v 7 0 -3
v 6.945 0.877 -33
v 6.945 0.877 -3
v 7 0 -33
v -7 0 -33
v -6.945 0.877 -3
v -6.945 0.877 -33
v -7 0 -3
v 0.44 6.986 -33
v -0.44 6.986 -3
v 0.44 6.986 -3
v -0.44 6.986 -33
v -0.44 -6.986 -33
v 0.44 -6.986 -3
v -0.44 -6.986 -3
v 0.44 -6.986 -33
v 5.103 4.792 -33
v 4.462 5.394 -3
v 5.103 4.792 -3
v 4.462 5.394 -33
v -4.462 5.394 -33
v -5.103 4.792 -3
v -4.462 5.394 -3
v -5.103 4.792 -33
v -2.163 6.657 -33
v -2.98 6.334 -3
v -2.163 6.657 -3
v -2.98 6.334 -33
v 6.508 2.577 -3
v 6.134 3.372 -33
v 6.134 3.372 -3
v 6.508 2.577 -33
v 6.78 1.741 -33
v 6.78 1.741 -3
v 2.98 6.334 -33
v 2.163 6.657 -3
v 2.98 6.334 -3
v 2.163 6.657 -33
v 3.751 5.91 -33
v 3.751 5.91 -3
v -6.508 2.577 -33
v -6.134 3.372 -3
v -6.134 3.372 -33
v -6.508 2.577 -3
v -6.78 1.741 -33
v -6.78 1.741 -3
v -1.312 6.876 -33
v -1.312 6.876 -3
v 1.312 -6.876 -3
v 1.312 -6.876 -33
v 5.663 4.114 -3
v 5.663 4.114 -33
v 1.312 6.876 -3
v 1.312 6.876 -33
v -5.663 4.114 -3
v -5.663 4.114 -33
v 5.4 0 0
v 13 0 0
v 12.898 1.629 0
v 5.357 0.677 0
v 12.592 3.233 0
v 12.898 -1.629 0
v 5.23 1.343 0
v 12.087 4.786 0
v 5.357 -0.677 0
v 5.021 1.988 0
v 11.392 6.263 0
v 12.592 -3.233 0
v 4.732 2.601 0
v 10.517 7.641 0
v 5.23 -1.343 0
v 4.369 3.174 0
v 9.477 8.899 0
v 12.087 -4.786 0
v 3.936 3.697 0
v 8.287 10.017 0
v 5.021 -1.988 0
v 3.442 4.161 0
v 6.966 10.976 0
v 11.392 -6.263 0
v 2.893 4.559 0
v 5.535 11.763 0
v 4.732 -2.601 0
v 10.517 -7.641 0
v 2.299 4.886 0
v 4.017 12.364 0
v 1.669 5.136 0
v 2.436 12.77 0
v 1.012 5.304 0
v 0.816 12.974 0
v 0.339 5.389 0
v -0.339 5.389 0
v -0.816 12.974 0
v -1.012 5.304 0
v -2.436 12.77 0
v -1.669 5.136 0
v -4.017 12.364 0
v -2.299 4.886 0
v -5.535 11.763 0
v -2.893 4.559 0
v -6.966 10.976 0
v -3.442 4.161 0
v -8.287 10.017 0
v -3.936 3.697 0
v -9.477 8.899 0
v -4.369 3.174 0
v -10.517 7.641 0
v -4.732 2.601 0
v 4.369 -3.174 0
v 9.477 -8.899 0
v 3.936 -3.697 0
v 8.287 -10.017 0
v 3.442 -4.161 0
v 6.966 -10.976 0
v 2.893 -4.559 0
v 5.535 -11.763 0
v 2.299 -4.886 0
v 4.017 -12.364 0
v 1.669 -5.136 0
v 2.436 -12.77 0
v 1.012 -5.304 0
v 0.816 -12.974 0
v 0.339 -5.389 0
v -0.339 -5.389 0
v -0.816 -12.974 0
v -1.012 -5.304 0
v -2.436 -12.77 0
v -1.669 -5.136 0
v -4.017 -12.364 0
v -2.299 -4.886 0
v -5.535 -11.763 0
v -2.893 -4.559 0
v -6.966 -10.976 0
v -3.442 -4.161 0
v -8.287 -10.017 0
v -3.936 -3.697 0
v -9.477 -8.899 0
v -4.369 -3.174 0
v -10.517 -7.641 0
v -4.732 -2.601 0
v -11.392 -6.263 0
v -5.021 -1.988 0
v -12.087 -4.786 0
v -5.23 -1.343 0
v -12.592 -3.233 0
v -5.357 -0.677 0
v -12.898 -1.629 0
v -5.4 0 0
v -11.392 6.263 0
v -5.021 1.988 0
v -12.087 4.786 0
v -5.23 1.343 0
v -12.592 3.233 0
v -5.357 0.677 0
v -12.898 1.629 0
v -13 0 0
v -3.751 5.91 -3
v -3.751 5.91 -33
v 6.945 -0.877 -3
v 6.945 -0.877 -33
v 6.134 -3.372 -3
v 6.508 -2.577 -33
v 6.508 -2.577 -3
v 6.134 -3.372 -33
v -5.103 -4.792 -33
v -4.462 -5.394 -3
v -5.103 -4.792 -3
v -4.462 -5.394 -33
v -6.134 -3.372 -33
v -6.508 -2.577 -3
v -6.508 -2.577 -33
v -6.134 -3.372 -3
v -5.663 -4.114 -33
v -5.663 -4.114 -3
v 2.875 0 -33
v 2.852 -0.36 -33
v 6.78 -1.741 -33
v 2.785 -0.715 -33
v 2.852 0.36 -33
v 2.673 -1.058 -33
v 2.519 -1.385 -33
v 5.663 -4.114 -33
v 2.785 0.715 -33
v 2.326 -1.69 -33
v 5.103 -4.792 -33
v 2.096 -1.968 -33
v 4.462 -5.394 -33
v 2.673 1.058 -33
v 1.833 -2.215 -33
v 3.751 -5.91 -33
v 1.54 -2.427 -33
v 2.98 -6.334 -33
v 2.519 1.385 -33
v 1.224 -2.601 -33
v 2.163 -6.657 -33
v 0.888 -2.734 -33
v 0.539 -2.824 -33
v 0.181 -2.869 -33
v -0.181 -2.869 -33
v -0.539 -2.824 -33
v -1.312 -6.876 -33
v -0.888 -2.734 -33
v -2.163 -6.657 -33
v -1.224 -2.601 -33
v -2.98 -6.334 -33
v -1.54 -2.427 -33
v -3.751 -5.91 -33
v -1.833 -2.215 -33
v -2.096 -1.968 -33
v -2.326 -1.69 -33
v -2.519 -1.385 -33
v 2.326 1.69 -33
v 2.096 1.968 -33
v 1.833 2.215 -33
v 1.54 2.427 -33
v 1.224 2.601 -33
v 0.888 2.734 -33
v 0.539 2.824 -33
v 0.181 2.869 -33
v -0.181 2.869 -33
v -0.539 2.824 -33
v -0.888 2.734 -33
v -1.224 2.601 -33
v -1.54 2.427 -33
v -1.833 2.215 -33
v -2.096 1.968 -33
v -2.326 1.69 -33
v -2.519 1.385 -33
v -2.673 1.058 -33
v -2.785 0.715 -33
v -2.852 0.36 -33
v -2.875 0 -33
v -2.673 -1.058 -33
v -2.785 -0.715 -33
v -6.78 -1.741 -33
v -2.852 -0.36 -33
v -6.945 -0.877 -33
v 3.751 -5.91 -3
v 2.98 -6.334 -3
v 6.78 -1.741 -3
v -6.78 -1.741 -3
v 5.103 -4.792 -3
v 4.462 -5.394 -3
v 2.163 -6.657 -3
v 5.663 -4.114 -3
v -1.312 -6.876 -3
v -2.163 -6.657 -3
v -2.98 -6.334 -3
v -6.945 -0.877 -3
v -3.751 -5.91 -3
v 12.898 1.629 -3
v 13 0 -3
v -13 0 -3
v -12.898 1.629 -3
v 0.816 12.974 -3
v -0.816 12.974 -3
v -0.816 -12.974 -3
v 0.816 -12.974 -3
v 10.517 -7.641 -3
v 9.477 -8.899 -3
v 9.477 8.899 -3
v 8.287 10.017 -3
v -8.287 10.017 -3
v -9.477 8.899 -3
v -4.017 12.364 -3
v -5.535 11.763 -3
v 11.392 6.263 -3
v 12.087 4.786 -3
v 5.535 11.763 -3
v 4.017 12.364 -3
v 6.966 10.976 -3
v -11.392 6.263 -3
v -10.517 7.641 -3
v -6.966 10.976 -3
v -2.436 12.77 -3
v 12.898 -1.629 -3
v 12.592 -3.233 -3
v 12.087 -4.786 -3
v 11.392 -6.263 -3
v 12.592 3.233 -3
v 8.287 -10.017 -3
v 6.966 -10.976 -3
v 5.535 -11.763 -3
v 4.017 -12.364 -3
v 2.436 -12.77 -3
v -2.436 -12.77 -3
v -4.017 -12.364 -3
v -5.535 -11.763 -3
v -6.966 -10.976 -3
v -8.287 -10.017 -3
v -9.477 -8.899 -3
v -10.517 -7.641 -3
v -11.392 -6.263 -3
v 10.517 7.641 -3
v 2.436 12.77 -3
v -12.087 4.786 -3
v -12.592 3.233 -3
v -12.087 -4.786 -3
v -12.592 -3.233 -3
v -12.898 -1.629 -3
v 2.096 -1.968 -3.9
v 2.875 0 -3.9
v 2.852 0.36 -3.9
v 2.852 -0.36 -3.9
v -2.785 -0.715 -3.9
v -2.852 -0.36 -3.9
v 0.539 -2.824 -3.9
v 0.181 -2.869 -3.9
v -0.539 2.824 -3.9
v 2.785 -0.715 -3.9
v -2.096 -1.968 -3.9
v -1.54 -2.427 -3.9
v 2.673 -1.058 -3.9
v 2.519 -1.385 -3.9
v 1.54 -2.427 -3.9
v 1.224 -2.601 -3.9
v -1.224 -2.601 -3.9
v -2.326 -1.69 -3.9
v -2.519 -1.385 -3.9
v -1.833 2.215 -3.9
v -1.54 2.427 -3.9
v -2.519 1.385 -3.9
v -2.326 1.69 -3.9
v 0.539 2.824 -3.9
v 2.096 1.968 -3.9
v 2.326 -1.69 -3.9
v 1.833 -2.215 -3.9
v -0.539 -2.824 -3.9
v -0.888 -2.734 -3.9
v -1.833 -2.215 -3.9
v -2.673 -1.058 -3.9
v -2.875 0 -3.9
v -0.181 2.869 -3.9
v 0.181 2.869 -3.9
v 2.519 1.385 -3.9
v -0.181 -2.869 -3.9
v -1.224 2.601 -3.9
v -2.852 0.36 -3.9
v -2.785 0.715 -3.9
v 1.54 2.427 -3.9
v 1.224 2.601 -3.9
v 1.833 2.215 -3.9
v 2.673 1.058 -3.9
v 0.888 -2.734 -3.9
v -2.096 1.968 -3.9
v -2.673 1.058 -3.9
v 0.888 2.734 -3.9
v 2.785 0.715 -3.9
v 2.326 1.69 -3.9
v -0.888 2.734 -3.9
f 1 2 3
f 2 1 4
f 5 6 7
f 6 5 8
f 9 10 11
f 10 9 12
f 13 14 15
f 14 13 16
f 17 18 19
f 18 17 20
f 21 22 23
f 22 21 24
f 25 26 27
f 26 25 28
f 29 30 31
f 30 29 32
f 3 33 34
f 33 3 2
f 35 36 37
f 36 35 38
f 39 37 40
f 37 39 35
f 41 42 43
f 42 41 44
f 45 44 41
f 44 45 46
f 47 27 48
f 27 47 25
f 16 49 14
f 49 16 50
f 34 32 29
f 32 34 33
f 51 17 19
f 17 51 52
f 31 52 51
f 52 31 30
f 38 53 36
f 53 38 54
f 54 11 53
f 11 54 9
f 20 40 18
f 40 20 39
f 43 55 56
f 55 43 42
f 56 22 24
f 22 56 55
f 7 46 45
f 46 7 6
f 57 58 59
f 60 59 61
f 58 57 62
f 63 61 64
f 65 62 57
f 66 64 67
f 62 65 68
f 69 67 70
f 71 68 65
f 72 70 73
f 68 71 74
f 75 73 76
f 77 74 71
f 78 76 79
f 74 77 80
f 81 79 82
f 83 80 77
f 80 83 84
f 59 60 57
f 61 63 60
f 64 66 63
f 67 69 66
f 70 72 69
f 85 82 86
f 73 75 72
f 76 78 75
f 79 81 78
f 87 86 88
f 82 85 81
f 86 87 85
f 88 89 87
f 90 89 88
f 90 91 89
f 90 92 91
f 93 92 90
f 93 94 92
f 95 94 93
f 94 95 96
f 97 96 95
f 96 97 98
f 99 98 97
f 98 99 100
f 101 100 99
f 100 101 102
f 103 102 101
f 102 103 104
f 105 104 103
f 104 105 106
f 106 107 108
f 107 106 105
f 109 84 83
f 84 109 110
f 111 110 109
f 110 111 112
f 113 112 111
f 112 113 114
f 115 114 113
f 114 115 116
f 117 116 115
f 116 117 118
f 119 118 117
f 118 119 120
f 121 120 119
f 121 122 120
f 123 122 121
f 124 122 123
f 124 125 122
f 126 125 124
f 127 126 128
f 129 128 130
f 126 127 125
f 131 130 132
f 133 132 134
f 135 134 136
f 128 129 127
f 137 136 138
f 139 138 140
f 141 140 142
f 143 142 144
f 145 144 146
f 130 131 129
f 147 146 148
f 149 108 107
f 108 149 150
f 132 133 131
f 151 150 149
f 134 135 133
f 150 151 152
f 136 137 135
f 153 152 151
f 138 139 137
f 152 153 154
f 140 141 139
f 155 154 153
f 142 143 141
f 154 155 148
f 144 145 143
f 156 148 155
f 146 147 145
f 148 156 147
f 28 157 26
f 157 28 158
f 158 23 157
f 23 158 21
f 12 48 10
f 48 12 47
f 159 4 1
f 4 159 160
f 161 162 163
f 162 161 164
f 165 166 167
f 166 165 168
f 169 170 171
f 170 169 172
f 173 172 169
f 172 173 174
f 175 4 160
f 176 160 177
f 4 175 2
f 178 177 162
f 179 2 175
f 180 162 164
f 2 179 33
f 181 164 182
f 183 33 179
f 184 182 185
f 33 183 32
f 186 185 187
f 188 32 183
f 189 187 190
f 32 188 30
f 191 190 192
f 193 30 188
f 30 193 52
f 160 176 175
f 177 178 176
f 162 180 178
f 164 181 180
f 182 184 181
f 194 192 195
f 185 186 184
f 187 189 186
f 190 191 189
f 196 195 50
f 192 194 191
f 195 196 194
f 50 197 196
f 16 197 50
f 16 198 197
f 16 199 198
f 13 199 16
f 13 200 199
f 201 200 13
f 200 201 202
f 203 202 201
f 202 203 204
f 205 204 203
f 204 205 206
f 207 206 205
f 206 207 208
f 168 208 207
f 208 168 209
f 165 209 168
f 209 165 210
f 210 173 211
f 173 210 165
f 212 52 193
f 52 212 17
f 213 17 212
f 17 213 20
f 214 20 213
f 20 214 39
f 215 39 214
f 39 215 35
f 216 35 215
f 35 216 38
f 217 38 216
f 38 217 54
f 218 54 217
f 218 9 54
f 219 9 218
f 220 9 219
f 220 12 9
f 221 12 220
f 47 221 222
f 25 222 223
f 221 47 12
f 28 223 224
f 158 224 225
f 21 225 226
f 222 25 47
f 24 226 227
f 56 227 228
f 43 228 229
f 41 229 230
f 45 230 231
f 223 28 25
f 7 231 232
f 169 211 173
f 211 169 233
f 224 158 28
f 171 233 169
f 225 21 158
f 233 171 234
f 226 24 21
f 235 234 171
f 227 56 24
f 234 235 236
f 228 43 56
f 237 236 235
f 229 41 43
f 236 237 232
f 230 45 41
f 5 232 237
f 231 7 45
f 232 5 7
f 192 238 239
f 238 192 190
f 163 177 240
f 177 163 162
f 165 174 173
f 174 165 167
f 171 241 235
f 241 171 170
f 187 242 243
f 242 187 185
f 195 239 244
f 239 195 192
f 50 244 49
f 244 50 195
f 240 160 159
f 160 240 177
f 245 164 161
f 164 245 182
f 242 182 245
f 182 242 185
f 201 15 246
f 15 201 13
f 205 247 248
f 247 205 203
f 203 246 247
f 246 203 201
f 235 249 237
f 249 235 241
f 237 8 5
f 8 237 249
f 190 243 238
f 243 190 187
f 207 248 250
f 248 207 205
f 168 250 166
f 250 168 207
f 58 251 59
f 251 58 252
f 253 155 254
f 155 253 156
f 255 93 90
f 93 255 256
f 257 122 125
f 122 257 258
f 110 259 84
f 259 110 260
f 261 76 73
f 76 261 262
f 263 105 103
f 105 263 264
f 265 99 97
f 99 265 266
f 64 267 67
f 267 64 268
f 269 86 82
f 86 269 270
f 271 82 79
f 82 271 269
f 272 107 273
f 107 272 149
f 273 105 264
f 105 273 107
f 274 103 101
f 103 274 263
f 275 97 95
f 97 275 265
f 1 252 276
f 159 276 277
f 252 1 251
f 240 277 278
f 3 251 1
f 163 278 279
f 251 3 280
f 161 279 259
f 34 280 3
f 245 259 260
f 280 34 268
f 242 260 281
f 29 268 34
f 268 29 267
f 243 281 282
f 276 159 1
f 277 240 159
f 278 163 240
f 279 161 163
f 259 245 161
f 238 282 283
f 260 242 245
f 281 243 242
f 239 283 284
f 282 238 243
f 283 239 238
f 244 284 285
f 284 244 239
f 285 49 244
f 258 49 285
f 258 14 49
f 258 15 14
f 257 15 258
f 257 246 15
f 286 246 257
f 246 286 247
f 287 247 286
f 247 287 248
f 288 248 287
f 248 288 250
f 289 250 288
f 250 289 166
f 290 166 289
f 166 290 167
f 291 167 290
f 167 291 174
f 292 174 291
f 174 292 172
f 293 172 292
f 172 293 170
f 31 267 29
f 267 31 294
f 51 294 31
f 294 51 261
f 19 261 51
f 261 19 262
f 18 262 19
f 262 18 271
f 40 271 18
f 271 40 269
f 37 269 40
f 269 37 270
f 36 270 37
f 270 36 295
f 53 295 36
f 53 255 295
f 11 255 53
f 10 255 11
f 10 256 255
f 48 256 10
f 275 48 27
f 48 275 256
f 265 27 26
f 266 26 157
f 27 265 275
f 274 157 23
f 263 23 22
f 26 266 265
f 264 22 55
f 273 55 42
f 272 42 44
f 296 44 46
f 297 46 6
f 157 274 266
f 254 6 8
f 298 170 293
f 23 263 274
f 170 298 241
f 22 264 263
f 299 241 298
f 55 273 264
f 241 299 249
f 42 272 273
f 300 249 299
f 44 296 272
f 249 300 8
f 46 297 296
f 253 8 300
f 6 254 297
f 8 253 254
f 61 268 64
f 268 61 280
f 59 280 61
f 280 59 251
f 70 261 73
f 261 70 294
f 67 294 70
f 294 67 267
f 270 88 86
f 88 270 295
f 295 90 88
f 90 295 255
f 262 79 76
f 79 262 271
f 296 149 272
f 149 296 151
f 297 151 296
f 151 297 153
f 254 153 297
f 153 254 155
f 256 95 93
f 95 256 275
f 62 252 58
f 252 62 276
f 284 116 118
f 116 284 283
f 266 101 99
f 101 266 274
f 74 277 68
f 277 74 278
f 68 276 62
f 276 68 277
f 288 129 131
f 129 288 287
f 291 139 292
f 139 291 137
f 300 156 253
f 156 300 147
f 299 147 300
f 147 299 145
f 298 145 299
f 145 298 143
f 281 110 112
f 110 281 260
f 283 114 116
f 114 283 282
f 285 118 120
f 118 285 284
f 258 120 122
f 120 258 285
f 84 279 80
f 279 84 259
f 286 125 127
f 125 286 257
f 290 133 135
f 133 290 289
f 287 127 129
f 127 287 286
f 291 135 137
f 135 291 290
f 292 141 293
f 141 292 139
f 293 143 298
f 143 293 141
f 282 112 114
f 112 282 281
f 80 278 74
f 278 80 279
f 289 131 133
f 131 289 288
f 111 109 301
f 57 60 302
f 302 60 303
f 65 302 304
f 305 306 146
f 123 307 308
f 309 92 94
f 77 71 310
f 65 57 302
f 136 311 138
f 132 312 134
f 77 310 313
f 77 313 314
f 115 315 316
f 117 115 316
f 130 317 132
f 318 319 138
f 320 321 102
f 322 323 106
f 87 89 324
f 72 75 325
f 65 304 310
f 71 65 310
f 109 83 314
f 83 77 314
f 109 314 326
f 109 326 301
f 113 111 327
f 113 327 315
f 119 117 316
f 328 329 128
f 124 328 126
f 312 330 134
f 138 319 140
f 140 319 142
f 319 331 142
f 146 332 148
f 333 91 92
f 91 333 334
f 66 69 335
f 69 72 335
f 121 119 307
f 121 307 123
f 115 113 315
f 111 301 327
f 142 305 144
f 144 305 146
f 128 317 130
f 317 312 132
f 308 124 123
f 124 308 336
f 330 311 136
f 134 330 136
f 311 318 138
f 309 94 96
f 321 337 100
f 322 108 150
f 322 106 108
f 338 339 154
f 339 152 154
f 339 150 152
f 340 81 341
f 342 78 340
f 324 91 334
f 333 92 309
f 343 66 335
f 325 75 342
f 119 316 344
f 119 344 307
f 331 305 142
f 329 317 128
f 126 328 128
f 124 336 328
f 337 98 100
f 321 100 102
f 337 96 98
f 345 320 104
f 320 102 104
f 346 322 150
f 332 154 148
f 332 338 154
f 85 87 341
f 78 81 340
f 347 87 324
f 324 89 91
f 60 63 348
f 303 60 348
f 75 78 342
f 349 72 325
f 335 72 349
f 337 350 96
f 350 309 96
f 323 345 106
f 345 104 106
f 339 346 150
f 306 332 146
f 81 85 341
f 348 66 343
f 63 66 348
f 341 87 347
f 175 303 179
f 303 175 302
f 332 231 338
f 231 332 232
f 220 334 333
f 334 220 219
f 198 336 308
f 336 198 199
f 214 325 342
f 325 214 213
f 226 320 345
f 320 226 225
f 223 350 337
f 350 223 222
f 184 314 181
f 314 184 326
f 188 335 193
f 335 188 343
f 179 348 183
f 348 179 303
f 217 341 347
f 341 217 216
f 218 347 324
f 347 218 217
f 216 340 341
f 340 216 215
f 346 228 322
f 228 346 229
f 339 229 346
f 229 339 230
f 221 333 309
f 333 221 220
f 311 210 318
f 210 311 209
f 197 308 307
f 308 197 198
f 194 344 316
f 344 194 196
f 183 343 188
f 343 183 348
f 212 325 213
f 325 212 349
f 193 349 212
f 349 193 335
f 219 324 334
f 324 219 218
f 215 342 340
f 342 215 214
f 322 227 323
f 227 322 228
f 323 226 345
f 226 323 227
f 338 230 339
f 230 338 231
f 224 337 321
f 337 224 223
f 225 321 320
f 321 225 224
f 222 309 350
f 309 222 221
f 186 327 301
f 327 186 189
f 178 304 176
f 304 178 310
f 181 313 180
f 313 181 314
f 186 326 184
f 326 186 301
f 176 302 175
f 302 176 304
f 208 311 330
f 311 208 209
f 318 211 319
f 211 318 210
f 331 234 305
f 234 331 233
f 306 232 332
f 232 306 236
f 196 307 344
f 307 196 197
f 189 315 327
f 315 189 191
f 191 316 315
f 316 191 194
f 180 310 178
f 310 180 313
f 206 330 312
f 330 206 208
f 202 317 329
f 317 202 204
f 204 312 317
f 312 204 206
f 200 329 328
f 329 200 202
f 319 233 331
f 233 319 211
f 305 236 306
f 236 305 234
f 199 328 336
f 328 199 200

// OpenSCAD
$fn = 50;


difference() {
	union() {
		translate(v = [0, 0, -33.0000000000]) {
			cylinder(h = 33, r = 7.0000000000);
		}
		translate(v = [0, 0, -3.0000000000]) {
			cylinder(h = 3, r = 13.0000000000);
		}
	}
	union() {
		translate(v = [0, 0, 0]) {
			rotate(a = [0, 0, 0]) {
				difference() {
					union() {
						#translate(v = [0, 0, -33.0000000000]) {
							cylinder(h = 33, r = 2.6000000000);
						}
						#translate(v = [0, 0, -3.9000000000]) {
							cylinder(h = 3.9000000000, r1 = 2.8750000000, r2 = 5.4000000000);
						}
						#translate(v = [0, 0, -33.0000000000]) {
							cylinder(h = 33, r = 2.8750000000);
						}
						#translate(v = [0, 0, -33.0000000000]) {
							cylinder(h = 33, r = 2.6000000000);
						}
					}
					union();
				}
			}
		}
	}
}
